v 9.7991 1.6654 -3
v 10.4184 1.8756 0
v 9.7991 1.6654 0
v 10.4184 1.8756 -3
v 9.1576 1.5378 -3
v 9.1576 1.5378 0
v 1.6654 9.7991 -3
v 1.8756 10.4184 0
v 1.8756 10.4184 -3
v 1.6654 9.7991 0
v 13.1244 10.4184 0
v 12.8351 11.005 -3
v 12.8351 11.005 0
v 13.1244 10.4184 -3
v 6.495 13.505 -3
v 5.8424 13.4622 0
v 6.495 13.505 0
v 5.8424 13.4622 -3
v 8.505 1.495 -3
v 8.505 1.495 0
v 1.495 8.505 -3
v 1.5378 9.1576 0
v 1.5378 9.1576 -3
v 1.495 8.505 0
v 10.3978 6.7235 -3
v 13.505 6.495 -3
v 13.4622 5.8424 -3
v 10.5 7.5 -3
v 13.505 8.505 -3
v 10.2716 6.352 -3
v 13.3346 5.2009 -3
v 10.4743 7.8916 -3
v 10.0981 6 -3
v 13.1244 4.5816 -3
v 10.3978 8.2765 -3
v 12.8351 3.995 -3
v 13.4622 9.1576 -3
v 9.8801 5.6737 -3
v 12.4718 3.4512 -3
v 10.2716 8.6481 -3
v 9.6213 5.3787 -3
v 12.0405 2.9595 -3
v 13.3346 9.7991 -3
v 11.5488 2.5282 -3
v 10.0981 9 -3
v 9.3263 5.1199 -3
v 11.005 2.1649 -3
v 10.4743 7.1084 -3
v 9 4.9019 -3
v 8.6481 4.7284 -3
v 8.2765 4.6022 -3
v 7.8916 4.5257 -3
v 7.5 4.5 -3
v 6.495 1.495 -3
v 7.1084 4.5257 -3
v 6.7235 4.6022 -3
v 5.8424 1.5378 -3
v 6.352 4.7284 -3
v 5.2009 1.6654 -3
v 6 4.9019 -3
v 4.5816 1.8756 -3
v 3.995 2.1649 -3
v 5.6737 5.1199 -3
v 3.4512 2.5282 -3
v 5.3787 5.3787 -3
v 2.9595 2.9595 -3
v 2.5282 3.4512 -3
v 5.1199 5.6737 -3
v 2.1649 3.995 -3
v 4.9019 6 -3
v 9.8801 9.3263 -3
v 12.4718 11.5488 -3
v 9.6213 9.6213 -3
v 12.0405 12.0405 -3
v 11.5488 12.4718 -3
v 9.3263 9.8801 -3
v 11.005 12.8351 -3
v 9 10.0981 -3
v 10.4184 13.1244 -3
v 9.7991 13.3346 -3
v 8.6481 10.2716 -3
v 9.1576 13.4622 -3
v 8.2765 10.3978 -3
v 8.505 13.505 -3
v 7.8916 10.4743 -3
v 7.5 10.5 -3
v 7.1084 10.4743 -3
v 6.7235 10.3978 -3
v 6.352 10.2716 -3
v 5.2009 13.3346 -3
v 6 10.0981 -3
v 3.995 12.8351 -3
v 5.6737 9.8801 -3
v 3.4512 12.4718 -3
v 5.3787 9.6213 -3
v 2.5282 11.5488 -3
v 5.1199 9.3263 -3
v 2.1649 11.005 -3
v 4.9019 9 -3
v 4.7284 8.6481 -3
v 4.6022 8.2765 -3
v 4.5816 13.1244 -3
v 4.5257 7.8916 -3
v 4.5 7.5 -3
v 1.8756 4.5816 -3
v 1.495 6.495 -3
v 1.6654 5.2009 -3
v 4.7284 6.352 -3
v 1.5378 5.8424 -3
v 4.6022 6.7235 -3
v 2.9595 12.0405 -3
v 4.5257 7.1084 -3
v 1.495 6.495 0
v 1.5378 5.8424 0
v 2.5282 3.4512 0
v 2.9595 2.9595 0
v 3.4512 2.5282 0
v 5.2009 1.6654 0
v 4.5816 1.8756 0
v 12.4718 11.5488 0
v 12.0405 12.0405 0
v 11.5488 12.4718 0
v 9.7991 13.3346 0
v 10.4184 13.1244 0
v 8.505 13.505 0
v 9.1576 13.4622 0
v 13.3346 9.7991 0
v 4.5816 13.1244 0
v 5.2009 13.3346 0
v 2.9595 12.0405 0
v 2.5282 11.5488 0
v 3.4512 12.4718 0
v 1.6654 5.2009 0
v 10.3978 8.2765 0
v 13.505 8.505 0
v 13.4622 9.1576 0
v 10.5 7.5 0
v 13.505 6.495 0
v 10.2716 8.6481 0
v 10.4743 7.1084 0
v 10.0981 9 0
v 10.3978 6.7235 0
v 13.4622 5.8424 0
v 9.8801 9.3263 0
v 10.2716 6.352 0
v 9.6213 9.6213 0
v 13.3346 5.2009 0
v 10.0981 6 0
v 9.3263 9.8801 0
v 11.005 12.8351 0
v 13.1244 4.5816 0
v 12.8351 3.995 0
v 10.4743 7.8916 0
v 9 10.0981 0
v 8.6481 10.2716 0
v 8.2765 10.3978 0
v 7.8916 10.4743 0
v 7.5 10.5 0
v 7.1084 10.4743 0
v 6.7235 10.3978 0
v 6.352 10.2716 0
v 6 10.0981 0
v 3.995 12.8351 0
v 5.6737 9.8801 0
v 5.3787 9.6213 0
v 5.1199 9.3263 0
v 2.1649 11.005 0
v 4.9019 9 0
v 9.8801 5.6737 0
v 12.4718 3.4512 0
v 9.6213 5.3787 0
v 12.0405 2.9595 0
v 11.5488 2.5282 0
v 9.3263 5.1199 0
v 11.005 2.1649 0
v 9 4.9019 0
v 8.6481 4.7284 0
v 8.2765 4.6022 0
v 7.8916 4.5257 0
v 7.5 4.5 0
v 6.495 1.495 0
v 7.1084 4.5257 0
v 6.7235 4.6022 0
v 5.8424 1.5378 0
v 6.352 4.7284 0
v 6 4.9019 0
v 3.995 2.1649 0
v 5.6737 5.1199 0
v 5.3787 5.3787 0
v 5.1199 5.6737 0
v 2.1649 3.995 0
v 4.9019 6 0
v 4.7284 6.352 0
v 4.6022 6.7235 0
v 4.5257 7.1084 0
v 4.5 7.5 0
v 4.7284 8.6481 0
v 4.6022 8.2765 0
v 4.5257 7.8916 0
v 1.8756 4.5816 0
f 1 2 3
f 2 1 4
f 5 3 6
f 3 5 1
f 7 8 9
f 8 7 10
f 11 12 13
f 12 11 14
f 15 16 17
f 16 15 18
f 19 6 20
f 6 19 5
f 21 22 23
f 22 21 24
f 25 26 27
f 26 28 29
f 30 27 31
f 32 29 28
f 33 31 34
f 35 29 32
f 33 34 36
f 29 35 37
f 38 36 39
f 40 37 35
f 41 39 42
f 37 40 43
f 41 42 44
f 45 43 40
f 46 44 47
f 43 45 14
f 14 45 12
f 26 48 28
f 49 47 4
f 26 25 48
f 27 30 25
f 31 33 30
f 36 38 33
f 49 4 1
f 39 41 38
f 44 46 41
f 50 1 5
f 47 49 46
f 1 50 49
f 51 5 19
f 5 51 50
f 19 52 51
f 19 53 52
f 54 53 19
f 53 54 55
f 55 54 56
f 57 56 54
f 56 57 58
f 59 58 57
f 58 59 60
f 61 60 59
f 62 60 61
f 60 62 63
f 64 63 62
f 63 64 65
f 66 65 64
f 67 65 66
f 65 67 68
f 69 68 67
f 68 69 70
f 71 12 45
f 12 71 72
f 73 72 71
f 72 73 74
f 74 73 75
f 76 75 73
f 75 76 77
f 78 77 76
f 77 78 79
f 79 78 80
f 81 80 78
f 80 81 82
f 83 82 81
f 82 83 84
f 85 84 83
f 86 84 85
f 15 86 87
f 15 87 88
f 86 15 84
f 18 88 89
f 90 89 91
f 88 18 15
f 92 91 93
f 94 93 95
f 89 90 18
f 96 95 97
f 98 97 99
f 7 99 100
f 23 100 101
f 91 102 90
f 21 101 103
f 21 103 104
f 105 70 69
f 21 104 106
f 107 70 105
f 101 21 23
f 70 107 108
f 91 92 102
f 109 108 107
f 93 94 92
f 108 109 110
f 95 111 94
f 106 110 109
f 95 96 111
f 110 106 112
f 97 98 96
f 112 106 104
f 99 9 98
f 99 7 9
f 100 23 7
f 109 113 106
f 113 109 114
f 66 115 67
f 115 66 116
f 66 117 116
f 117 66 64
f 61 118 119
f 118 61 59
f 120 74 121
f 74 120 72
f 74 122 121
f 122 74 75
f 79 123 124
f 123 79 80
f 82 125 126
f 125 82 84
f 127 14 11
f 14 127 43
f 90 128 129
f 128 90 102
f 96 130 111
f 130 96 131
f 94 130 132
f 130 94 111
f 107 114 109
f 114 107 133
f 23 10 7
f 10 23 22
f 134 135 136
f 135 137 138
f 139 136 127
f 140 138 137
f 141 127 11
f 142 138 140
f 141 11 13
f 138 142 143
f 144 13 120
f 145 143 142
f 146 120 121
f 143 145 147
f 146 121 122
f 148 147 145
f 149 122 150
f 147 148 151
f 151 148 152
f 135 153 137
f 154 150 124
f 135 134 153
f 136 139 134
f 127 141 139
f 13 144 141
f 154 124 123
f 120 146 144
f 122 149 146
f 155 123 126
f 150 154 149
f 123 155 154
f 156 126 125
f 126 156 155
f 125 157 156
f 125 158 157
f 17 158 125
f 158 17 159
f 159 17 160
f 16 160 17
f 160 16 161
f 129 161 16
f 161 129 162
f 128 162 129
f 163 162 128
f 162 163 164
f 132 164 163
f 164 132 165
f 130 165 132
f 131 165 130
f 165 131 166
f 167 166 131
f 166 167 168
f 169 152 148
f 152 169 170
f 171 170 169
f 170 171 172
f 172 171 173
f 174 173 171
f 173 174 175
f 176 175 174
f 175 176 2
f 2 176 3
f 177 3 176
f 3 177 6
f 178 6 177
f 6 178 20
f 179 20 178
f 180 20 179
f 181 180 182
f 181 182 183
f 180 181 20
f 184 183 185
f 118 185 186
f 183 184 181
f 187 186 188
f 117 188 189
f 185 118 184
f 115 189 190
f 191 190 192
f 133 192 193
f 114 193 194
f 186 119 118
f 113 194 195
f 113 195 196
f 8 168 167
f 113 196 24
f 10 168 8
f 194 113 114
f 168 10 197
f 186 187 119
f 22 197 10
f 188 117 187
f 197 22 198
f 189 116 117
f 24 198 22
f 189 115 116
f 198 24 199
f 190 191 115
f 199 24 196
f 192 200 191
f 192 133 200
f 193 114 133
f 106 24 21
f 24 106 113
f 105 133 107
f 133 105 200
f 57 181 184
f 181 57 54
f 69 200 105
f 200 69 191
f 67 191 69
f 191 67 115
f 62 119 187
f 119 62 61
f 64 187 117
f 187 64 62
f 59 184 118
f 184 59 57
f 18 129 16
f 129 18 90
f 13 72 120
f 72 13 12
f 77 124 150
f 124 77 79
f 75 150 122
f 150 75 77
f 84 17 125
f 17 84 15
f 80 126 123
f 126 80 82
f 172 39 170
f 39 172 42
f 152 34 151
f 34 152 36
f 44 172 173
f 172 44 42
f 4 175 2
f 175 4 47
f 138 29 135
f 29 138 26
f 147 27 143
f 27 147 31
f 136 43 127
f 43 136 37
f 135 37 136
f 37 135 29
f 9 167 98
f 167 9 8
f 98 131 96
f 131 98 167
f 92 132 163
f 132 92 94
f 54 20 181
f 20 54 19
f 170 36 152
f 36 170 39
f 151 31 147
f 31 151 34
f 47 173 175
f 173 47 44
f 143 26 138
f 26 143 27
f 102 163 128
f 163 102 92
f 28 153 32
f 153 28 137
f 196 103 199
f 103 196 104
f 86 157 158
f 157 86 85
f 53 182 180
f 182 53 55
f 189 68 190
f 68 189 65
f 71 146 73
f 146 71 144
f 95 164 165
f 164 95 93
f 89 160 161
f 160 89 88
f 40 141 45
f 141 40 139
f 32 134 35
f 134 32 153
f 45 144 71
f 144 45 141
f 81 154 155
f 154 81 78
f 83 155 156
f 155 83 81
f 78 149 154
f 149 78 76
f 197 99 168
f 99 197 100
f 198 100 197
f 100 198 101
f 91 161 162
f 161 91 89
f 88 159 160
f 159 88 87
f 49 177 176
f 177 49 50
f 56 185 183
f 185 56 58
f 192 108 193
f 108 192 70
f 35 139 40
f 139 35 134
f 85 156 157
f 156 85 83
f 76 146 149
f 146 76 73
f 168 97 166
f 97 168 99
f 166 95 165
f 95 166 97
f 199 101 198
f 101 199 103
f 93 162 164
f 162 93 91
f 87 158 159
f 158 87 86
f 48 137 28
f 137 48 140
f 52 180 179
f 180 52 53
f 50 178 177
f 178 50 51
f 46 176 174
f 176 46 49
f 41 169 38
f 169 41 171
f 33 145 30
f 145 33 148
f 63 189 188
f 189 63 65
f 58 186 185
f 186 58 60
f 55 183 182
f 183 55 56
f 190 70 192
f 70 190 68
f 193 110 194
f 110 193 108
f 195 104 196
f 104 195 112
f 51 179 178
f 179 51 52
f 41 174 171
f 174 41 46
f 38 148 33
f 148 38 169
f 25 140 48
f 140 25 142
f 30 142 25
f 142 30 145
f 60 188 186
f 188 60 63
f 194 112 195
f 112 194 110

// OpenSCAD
// Generated by SolidPython 1.1.3 on 2022-09-14 10:10:14
$fn = 48;


difference() {
	union() {
		color(alpha = 1.0000000000, c = "Gold") {
			translate(v = [7.5000000000, 7.5000000000, 0]) {
				rotate(a = [0, 0, 0]) {
					translate(v = [0, 0, -3]) {
						linear_extrude(height = 3) {
							offset(r = 5) {
								square(center = true, size = [2.0100000000, 2.0100000000]);
							}
						}
					}
				}
			}
		}
	}
	union() {
		color(alpha = 1.0000000000, c = "Gold") {
			translate(v = [7.5000000000, 7.5000000000, 0]) {
				rotate(a = [0, 0, 0]) {
					translate(v = [0, 0, -250]) {
						cylinder(h = 500, r = 3.0000000000);
					}
				}
			}
		}
	}
}
/***********************************************
*********      SolidPython code:      **********
************************************************
 
import subprocess

from solid.objects import *
from solid import scad_render_to_file, scad_render

import os

##################################################################################################################################################
##################################################################################################################################################
##################################################################################################################################################
##################################################################################################################################################
######  DIMENSION STUFF
##################################################################################################################################################
##################################################################################################################################################
##################################################################################################################################################
##################################################################################################################################################


mode = "3DPR"
#mode = "LAZE"
#mode = "TURE"
#mode = ""


######  Countersunk
countersunkM = []
WIDTH = 0
DEPTH = 1
countersunkM1width = 0; countersunkM1depth = 0; countersunkM2width = 0; countersunkM2depth = 0
countersunkM3width = 0
countersunkM3depth = 0
countersunkM4width = 0
countersunkM4depth = 0
countersunkM5width = 0
countersunkM5depth = 0
countersunkM6width = 0
countersunkM6depth = 0

######  Holes
holeM = []
holeM1 = 0
holeM2 = 0
holeM3 = 0
holeM4 = 0
holeM5 = 0
holeM6 = 0

######  Nuts
nutM = []
NUTWIDTH = 0
NUTDEPTH = 1
nutM1width = 0
nutM1depth = 0
nutM2width = 0
nutM2depth = 0
nutM3width = 0
nutM3depth = 0
nutM4width = 0
nutM4depth = 0
nutM5width = 0
nutM5depth = 0
nutM6width = 0
nutM6depth = 0

######  OOEB
ooebPinWidth = 0
ooebPinWidthWide = 0


######  Colors
colDefault = "Gold"

colOOEBbase = colDefault

colLEDRed = "red"
colWire = "gray"
    ######  Resistor
colRes = list()
colResistor = "beige"

colResBlack = "black"
colRes.append(colResBlack)
colResBrown = "brown"
colRes.append(colResBrown)
colResRed = "red"
colRes.append(colResRed)
colResOrange = "orange"
colRes.append(colResOrange)
colResYellow = "yellow"
colRes.append(colResYellow)
colResGreen = "green"
colRes.append(colResGreen)
colResBlue = "blue"
colRes.append(colResBlue)
colResPurple = "purple"
colRes.append(colResPurple)
colResGray = "gray"
colRes.append(colResGray)
colResWhite = "white"
colRes.append(colResWhite)





def changeMode(m="3DPR"):
    #print("####################################################      CHANGING MODES TO: " + m)
    global mode
    mode = m
    ######  Countersunk
    global countersunkM, countersunkM1width, countersunkM1depth, countersunkM2width, countersunkM2depth, countersunkM3width, countersunkM3depth, countersunkM4width, countersunkM4depth, countersunkM5width, countersunkM5depth, countersunkM6width, countersunkM6depth
    countersunkM = []
    countersunkM.append([0,0])
    countersunkM1width = 0 if mode== "3DPR" else 0
    countersunkM1depth = 0 if mode== "3DPR" else 0
    countersunkM.append([countersunkM1width,countersunkM1depth])
    countersunkM2width = 0 if mode== "3DPR" else 0
    countersunkM2depth = 0 if mode== "3DPR" else 0
    countersunkM.append([countersunkM2width,countersunkM2depth])
    countersunkM3width = 5.5/2+0.6 if mode== "3DPR" else 5.5/2
    countersunkM3depth = 1.7 if mode== "3DPR" else 1.7
    countersunkM.append([countersunkM3width,countersunkM3depth])
    countersunkM4width = 0 if mode== "3DPR" else 0
    countersunkM4depth = 0 if mode== "3DPR" else 0
    countersunkM.append([countersunkM4width,countersunkM4depth])
    countersunkM5width = 0 if mode== "3DPR" else 0
    countersunkM5depth = 0 if mode== "3DPR" else 0
    countersunkM.append([countersunkM5width,countersunkM5depth])
    countersunkM6width = 0 if mode== "3DPR" else 0
    countersunkM6depth = 0 if mode== "3DPR" else 0
    countersunkM.append([countersunkM6width,countersunkM6depth])
    ######  Holes
    global holeM, holeM1, holeM2, holeM3, holeM4, holeM5, holeM6, holeM7, holeM8
    holeM = []
    holeM1 = 1.2/2 if mode== "3DPR" else 1/2
    holeM2 = 2.3/2 if mode== "3DPR" else 2/2
    holeM3 = 3.4/2 if mode== "3DPR" else 3/2
    holeM4 = 4.4/2 if mode== "3DPR" else 4/2
    holeM5 = 5.4/2 if mode== "3DPR" else 5/2
    holeM6 = 6.5/2 if mode== "3DPR" else 6/2
    holeM7 = 7.5/2 if mode== "3DPR" else 7/2
    holeM8 = 8.6/2 if mode== "3DPR" else 8/2
    holeM.append(0)
    holeM.append(holeM1)
    holeM.append(holeM2)
    holeM.append(holeM3)
    holeM.append(holeM4)
    holeM.append(holeM5)
    holeM.append(holeM6)
    holeM.append(holeM7)
    holeM.append(holeM8)
    #####  Nuts
    global nutM, nutM1width, nutM1depth, nutM2width, nutM2depth, nutM3width, nutM3depth, nutM4width, nutM4depth, nutM5width, nutM5depth, nutM6width, nutM6depth
    nutM = []
    nutM.append([0,0]) 
    #M1 Nut
    nutM1width = 0
    nutM1depth = 0
    nutM.append([nutM1width,nutM1depth])    
    #M2 Nut
    nutM2width = 0
    nutM2depth = 0
    nutM.append([nutM2width,nutM2depth])    
    #M3 Nut
    nutM3width = 6.05 if mode== "3DPR" else 5.5
    nutM3depth = 2.5 if mode== "3DPR" else 2.5
    nutM.append([nutM3width,nutM3depth])    
    #M4 Nut
    nutM4width = 0
    nutM4depth = 0
    nutM.append([nutM4width,nutM4depth])    
    #M5 Nut
    nutM5width = 0
    nutM5depth = 0
    nutM.append([nutM5width,nutM5depth])    
    #M6 Nut
    nutM6width = 11 if mode== "3DPR" else 10
    nutM6depth = 5 if mode== "3DPR" else 5
    nutM.append([nutM6width,nutM6depth])    

    ######  OOEB
    global ooebPinWidth,  ooebPinWidthWide

    ooebPinWidth = 0.6
    if(mode=="3DPR" or mode=="LAZE"):
        ooebPinWidth = 0.6 + 0.6
    ooebPinWidthWide = 1.2
    if(mode=="3DPR" or mode=="LAZE"):
        ooebPinWidthWide = 1.2 + 0.6


changeMode()


""""    
holeM12D = s=="3DPR" ? 1.4/2 : 1.2/2;
holeM16D = s=="3DPR" ? 1.8/2 : 1.6/2;
holeM2 = s=="3DPR" ? 2.3/2 : 2/2;
holeM25D = s=="3DPR" ? 2.8/2 : 2.5/2;
holeM27D = s=="3DPR" ? 3.1/2 : 2.7/2;    
holeM3 = s=="3DPR" ? 3.4/2 : 3/2;
holeM35D = s=="3DPR" ? 3.9/2 : 35/2;
holeM4 = s=="3DPR" ? 4.4/2 : 4/2;
holeM5 = s=="3DPR" ? 5.4/2 : 5/2;
holeM6 = s=="3DPR" ? 6.5/2 : 6/2;
holeM6Minus = s=="3DPR" ? 5.8/2 : 5.9/2;
holeM7 = s=="3DPR" ? 7.5/2 : 7/2;
holeM8 = s=="3DPR" ? 8.6/2 : 8/2;
holeM9 = s=="3DPR" ? 9.6/2 : 9/2;
holeM10 = s=="3DPR" ? 10.6/2 : 10/2;
holeM11 = s=="3DPR" ? 11.6/2 : 11/2;
holeM12 = s=="3DPR" ? 12.6/2 : 12/2;
holeM13 = s=="3DPR" ? 13.6/2 : 13/2;
holeM14 = s=="3DPR" ? 14.6/2 : 14/2;
holeM15 = s=="3DPR" ? 15.6/2 : 15/2;
holeM16 = s=="3DPR" ? 16.6/2 : 16/2;
holeM17 = s=="3DPR" ? 17.6/2 : 17/2;
holeM18 = s=="3DPR" ? 18.6/2 : 18/2;
holeM19 = s=="3DPR" ? 19.6/2 : 19/2;
holeM20 = s=="3DPR" ? 20.6/2 : 20/2;
"""

##################################################################################################################################################
##################################################################################################################################################
##################################################################################################################################################
##################################################################################################################################################
######  REGULAR STUFF
##################################################################################################################################################
##################################################################################################################################################
##################################################################################################################################################
##################################################################################################################################################


def setMode(mode="3DPR"):
    changeMode(mode)

def getMode():
    return mode



def saveToScad(fileName, parts):
    dir =  os.path.dirname(os.path.abspath(fileName))
    Path(dir).mkdir(parents=True, exist_ok=True)
    file_out = scad_render_to_file(parts, fileName, file_header=f'$fn = 48;')


def saveToDxf(fileIn, fileOut=""):
    if fileOut == "":
        fileOut = fileIn.replace(".scad",".dxf")
    saveToFile(fileIn, fileOut)
    
def saveToPng(fileIn, fileOut="",extra="--render"):
    if fileOut == "":
        fileOut = fileIn.replace(".scad",".png")
    saveToFile(fileIn, fileOut)

def saveToStl(fileIn, fileOut=""):
    if fileOut == "":
        fileOut = fileIn.replace(".scad",".stl")
    saveToFile(fileIn, fileOut)
    
def saveToSvg(fileIn, fileOut=""):
    if fileOut == "":
        fileOut = fileIn.replace(".scad",".svg")
    saveToFile(fileIn, fileOut)

def saveToFile(fileIn, fileOut,extra=""):
    extra = extra + " --colorscheme Tomorrow"

    launchStr = 'openscad -o "' + fileOut + '"' + extra + ' "' + fileIn + '"'
    print("            saveToFile launch string: " + launchStr)
    subprocess.run(launchStr)
    x=0



def insert(item,pos=[None,None,None],x=0,y=0,z=0,ex=0,size=[None,None,None],length=0,rot=[None,None,None],rotX=0,rotY=0,rotZ=0,width=0,height=0,depth=100,rad=0,rad2=0,color=colDefault,alpha=1,OOwidth=0,OOheight=0,holes=True,negative=True, name=""):
    return OPSCInsert(item,pos,x,y,z,ex,size,length,rot,rotX,rotY,rotZ,width,height,depth,rad,rad2,color,alpha,OOwidth,OOheight,holes,negative,name)


def OPSCInsert(item,pos=[None,None,None],x=0,y=0,z=0,ex=0,size=[None,None,None],length=0,rot=[None,None,None],rotX=0,rotY=0,rotZ=0,width=0,height=0,depth=100,rad=0,rad2=0,col=colDefault,alpha=1,OOwidth=0,OOheight=0,holes=True,negative=True, name=""):
    
    """
        color(color,alpha){
            translate([x,y,z]){
                    rotate([rotX,rotY,rotZ]){
    """
    returnValue = ""

    #print(pos)

    if pos[0] != None:
        x=pos[0]
        y=pos[1]
        z=pos[2]
    if rot[0] != None:
        rotX=rot[0]
        rotY=rot[1]
        rotZ=rot[2]
    
    returnValue = color(col)(translate((x,y,z))(
                            rotate((rotX,rotY,rotZ))(
                                OPSCInsertIf(item,pos,x,y,z,ex,size,length,rot,rotX,rotY,rotZ,width,height,depth,rad,rad2,col,alpha,OOwidth,OOheight,holes,negative,name)
                            )
                        ))
                
    

    return returnValue

def OPSCInsertIf(item,pos=[None,None,None],x=0,y=0,z=0,ex=0,size=[None,None,None],length=0,rot=[None,None,None],rotX=0,rotY=0,rotZ=0,width=0,height=0,depth=100,rad=0,rad2=0,color=colDefault,alpha=1,OOwidth=0,OOheight=0,holes=True,negative=True, name=""):
    returnValue = cube([10,10,10])

    if size[0] != None:
        width=size[0]
        height=size[1]
        depth=size[2]

    #print("    OPSCInsert item:" + str(item) + " at:[" + str(x) + "," + str(y) + "," + str(z) + "] size: [" + str(width) + "," + str(height) + "," + str(depth) + "]")

    if(item=="cube"):
        returnValue =  translate([0,0,-depth/2])(cube([width,height,depth],center=True))
    elif(item=="cylinder"):        
        returnValue = translate([0,0,-depth/2])(cylinder(r=rad,h=depth,center=True))
    elif(item=="sphere"):        
        returnValue = translate([0,0,-rad])(sphere(r=rad))
    elif(item=="plane"):
        if depth == 100:
            returnValue = insert("cube",size=[1000,1000,0.1],color=color)            
        else:
            returnValue = insert("cube",size=[1000,1000,depth],color=color)                        
    elif(item=="cubeRounded"):
        if(rad == 0):
                            rad = 5
        returnValue =  translate([0,0,-depth])(
                        linear_extrude(height=depth)(                        
                            offset(r=rad)(
                                square((width-rad*2+.01,height-rad*2+.01),center=True)
                                )
                            )
        )
    ######  Countersunk
    elif(item == "countersunkM1" or item == "csM1" ):
        returnValue = OSPCgetCountersunk(rad=1)
    elif(item == "countersunkM2" or item == "csM2" ):
        returnValue = OSPCgetCountersunk(rad=2)
    elif(item == "countersunkM3" or item == "csM3" ):
        returnValue = OSPCgetCountersunk(rad=3)
    elif(item == "countersunkM4" or item == "csM4" ):
        returnValue = OSPCgetCountersunk(rad=4)
    elif(item == "countersunkM5" or item == "csM5" ):
        returnValue = OSPCgetCountersunk(rad=5)
    elif(item == "countersunkM6" or item == "csM6" ):
        returnValue = OSPCgetCountersunk(rad=6)
    elif(item == "countersunk" or item == "cs"):
        returnValue = OSPCgetCountersunk(rad=rad)


    ######  Holes    
    elif(item == "holeM1"):
        returnValue = OSPCgetHole(rad=1)
    elif(item == "holeM2"):
        returnValue = OSPCgetHole(rad=2)
    elif(item == "holeM3"):
        returnValue = OSPCgetHole(rad=3)
    elif(item == "holeM4"):
        returnValue = OSPCgetHole(rad=4)
    elif(item == "holeM5"):
        returnValue = OSPCgetHole(rad=5)
    elif(item == "holeM6"):
        returnValue = OSPCgetHole(rad=6)
    elif(item == "hole"):
        returnValue = OSPCgetHole(rad=rad)

    ######  Nuts
    elif(item == "nutM1"):
        returnValue = OSPCgetNut(rad=1,depth=depth)
    elif(item == "nutM2"):
        returnValue = OSPCgetNut(rad=2,depth=depth)
    elif(item == "nutM3"):
        returnValue = OSPCgetNut(rad=3,depth=depth)
    elif(item == "nutM4"):
        returnValue = OSPCgetNut(rad=4,depth=depth)
    elif(item == "nutM5"):
        returnValue = OSPCgetNut(rad=5,depth=depth)
    elif(item == "nutM6"):
        returnValue = OSPCgetNut(rad=6,depth=depth)
    elif(item == "nut"):
        returnValue = OSPCgetNut(rad=rad,depth=depth)
    return returnValue

                

def OSPCgetHole(rad):
    return translate([0,0,-250])(cylinder(r=holeM[rad],h=500))

def OSPCgetNut(rad,depth):
    depth = nutM[rad][NUTDEPTH] if depth==100 else depth
    returnValue = OPSChexagon(nutM[rad][NUTWIDTH],depth=depth)
    return returnValue

def OSPCgetCountersunk(rad):
    depth=countersunkM[rad][DEPTH]
    returnValue = translate([0,0,-depth])(cylinder(h=depth,r2=countersunkM[rad][WIDTH],r1=holeM[rad]))
    return returnValue

def OPSChexagon(width,depth):
    cutter = item()
    wid=width*2
    cutter.addPos(insert("cube",pos=[wid/2+width/2,0,0],size=[wid,wid,depth]))
    cutter.addPos(insert("cube",pos=[-wid/2-width/2,0,0],size=[wid,wid,depth]))

    cut = cutter.getPart()
    #print(depth)
    returnValue = difference()(
        translate([0,0,-depth/2])(cube([wid,wid,depth],center=True)),
        cut,
        rotate([0,0,60])(cut),
        rotate([0,0,-60])(cut)
    )

    return returnValue




class item:

    def __init__(self):
        self.posItems=list()
        self.negItems=list()

    def isEmpty(self):        
        testString = scad_render(self.getPart())
        #print("test String length: " + str(len(testString)))
        returnValue = False
        if len(testString) == 270:            
            returnValue = True
        return returnValue

    def addPos(self,part):
        self.posItems.append(part)
    def addNeg(self,part):
        self.negItems.append(part)

    def getPart(self):
        returnValue = difference()(
            union()(self.posItems),
            union()(self.negItems)
        )
        return returnValue

    def getLaser(self,start=0,layers=1,thickness=-3,tileDif=200):
        rv= []

        for x in range(layers):
            rv.append(translate([0,x*tileDif,0])(
                    projection()(
                        intersection()(
                            insert("plane",z=start+x*thickness),
                            self.getPart()
                        )
                    )
            )
            )
        return union()(rv)

    def getSplit(self,start=0,depth=6,tileDif=200):
        rv= []

        rv.append(translate([0,0,0])(
            intersection()(
                insert("cube",size=[100,100,depth],z=start),
                self.getPart()
            )
        )
        )

        rv.append(translate([0,tileDif,depth])(
            intersection()(
                insert("cube",size=[100,100,depth],z=start-depth),
                self.getPart()
            )
        )
        )        
        return union()(rv)


 
 
************************************************/
